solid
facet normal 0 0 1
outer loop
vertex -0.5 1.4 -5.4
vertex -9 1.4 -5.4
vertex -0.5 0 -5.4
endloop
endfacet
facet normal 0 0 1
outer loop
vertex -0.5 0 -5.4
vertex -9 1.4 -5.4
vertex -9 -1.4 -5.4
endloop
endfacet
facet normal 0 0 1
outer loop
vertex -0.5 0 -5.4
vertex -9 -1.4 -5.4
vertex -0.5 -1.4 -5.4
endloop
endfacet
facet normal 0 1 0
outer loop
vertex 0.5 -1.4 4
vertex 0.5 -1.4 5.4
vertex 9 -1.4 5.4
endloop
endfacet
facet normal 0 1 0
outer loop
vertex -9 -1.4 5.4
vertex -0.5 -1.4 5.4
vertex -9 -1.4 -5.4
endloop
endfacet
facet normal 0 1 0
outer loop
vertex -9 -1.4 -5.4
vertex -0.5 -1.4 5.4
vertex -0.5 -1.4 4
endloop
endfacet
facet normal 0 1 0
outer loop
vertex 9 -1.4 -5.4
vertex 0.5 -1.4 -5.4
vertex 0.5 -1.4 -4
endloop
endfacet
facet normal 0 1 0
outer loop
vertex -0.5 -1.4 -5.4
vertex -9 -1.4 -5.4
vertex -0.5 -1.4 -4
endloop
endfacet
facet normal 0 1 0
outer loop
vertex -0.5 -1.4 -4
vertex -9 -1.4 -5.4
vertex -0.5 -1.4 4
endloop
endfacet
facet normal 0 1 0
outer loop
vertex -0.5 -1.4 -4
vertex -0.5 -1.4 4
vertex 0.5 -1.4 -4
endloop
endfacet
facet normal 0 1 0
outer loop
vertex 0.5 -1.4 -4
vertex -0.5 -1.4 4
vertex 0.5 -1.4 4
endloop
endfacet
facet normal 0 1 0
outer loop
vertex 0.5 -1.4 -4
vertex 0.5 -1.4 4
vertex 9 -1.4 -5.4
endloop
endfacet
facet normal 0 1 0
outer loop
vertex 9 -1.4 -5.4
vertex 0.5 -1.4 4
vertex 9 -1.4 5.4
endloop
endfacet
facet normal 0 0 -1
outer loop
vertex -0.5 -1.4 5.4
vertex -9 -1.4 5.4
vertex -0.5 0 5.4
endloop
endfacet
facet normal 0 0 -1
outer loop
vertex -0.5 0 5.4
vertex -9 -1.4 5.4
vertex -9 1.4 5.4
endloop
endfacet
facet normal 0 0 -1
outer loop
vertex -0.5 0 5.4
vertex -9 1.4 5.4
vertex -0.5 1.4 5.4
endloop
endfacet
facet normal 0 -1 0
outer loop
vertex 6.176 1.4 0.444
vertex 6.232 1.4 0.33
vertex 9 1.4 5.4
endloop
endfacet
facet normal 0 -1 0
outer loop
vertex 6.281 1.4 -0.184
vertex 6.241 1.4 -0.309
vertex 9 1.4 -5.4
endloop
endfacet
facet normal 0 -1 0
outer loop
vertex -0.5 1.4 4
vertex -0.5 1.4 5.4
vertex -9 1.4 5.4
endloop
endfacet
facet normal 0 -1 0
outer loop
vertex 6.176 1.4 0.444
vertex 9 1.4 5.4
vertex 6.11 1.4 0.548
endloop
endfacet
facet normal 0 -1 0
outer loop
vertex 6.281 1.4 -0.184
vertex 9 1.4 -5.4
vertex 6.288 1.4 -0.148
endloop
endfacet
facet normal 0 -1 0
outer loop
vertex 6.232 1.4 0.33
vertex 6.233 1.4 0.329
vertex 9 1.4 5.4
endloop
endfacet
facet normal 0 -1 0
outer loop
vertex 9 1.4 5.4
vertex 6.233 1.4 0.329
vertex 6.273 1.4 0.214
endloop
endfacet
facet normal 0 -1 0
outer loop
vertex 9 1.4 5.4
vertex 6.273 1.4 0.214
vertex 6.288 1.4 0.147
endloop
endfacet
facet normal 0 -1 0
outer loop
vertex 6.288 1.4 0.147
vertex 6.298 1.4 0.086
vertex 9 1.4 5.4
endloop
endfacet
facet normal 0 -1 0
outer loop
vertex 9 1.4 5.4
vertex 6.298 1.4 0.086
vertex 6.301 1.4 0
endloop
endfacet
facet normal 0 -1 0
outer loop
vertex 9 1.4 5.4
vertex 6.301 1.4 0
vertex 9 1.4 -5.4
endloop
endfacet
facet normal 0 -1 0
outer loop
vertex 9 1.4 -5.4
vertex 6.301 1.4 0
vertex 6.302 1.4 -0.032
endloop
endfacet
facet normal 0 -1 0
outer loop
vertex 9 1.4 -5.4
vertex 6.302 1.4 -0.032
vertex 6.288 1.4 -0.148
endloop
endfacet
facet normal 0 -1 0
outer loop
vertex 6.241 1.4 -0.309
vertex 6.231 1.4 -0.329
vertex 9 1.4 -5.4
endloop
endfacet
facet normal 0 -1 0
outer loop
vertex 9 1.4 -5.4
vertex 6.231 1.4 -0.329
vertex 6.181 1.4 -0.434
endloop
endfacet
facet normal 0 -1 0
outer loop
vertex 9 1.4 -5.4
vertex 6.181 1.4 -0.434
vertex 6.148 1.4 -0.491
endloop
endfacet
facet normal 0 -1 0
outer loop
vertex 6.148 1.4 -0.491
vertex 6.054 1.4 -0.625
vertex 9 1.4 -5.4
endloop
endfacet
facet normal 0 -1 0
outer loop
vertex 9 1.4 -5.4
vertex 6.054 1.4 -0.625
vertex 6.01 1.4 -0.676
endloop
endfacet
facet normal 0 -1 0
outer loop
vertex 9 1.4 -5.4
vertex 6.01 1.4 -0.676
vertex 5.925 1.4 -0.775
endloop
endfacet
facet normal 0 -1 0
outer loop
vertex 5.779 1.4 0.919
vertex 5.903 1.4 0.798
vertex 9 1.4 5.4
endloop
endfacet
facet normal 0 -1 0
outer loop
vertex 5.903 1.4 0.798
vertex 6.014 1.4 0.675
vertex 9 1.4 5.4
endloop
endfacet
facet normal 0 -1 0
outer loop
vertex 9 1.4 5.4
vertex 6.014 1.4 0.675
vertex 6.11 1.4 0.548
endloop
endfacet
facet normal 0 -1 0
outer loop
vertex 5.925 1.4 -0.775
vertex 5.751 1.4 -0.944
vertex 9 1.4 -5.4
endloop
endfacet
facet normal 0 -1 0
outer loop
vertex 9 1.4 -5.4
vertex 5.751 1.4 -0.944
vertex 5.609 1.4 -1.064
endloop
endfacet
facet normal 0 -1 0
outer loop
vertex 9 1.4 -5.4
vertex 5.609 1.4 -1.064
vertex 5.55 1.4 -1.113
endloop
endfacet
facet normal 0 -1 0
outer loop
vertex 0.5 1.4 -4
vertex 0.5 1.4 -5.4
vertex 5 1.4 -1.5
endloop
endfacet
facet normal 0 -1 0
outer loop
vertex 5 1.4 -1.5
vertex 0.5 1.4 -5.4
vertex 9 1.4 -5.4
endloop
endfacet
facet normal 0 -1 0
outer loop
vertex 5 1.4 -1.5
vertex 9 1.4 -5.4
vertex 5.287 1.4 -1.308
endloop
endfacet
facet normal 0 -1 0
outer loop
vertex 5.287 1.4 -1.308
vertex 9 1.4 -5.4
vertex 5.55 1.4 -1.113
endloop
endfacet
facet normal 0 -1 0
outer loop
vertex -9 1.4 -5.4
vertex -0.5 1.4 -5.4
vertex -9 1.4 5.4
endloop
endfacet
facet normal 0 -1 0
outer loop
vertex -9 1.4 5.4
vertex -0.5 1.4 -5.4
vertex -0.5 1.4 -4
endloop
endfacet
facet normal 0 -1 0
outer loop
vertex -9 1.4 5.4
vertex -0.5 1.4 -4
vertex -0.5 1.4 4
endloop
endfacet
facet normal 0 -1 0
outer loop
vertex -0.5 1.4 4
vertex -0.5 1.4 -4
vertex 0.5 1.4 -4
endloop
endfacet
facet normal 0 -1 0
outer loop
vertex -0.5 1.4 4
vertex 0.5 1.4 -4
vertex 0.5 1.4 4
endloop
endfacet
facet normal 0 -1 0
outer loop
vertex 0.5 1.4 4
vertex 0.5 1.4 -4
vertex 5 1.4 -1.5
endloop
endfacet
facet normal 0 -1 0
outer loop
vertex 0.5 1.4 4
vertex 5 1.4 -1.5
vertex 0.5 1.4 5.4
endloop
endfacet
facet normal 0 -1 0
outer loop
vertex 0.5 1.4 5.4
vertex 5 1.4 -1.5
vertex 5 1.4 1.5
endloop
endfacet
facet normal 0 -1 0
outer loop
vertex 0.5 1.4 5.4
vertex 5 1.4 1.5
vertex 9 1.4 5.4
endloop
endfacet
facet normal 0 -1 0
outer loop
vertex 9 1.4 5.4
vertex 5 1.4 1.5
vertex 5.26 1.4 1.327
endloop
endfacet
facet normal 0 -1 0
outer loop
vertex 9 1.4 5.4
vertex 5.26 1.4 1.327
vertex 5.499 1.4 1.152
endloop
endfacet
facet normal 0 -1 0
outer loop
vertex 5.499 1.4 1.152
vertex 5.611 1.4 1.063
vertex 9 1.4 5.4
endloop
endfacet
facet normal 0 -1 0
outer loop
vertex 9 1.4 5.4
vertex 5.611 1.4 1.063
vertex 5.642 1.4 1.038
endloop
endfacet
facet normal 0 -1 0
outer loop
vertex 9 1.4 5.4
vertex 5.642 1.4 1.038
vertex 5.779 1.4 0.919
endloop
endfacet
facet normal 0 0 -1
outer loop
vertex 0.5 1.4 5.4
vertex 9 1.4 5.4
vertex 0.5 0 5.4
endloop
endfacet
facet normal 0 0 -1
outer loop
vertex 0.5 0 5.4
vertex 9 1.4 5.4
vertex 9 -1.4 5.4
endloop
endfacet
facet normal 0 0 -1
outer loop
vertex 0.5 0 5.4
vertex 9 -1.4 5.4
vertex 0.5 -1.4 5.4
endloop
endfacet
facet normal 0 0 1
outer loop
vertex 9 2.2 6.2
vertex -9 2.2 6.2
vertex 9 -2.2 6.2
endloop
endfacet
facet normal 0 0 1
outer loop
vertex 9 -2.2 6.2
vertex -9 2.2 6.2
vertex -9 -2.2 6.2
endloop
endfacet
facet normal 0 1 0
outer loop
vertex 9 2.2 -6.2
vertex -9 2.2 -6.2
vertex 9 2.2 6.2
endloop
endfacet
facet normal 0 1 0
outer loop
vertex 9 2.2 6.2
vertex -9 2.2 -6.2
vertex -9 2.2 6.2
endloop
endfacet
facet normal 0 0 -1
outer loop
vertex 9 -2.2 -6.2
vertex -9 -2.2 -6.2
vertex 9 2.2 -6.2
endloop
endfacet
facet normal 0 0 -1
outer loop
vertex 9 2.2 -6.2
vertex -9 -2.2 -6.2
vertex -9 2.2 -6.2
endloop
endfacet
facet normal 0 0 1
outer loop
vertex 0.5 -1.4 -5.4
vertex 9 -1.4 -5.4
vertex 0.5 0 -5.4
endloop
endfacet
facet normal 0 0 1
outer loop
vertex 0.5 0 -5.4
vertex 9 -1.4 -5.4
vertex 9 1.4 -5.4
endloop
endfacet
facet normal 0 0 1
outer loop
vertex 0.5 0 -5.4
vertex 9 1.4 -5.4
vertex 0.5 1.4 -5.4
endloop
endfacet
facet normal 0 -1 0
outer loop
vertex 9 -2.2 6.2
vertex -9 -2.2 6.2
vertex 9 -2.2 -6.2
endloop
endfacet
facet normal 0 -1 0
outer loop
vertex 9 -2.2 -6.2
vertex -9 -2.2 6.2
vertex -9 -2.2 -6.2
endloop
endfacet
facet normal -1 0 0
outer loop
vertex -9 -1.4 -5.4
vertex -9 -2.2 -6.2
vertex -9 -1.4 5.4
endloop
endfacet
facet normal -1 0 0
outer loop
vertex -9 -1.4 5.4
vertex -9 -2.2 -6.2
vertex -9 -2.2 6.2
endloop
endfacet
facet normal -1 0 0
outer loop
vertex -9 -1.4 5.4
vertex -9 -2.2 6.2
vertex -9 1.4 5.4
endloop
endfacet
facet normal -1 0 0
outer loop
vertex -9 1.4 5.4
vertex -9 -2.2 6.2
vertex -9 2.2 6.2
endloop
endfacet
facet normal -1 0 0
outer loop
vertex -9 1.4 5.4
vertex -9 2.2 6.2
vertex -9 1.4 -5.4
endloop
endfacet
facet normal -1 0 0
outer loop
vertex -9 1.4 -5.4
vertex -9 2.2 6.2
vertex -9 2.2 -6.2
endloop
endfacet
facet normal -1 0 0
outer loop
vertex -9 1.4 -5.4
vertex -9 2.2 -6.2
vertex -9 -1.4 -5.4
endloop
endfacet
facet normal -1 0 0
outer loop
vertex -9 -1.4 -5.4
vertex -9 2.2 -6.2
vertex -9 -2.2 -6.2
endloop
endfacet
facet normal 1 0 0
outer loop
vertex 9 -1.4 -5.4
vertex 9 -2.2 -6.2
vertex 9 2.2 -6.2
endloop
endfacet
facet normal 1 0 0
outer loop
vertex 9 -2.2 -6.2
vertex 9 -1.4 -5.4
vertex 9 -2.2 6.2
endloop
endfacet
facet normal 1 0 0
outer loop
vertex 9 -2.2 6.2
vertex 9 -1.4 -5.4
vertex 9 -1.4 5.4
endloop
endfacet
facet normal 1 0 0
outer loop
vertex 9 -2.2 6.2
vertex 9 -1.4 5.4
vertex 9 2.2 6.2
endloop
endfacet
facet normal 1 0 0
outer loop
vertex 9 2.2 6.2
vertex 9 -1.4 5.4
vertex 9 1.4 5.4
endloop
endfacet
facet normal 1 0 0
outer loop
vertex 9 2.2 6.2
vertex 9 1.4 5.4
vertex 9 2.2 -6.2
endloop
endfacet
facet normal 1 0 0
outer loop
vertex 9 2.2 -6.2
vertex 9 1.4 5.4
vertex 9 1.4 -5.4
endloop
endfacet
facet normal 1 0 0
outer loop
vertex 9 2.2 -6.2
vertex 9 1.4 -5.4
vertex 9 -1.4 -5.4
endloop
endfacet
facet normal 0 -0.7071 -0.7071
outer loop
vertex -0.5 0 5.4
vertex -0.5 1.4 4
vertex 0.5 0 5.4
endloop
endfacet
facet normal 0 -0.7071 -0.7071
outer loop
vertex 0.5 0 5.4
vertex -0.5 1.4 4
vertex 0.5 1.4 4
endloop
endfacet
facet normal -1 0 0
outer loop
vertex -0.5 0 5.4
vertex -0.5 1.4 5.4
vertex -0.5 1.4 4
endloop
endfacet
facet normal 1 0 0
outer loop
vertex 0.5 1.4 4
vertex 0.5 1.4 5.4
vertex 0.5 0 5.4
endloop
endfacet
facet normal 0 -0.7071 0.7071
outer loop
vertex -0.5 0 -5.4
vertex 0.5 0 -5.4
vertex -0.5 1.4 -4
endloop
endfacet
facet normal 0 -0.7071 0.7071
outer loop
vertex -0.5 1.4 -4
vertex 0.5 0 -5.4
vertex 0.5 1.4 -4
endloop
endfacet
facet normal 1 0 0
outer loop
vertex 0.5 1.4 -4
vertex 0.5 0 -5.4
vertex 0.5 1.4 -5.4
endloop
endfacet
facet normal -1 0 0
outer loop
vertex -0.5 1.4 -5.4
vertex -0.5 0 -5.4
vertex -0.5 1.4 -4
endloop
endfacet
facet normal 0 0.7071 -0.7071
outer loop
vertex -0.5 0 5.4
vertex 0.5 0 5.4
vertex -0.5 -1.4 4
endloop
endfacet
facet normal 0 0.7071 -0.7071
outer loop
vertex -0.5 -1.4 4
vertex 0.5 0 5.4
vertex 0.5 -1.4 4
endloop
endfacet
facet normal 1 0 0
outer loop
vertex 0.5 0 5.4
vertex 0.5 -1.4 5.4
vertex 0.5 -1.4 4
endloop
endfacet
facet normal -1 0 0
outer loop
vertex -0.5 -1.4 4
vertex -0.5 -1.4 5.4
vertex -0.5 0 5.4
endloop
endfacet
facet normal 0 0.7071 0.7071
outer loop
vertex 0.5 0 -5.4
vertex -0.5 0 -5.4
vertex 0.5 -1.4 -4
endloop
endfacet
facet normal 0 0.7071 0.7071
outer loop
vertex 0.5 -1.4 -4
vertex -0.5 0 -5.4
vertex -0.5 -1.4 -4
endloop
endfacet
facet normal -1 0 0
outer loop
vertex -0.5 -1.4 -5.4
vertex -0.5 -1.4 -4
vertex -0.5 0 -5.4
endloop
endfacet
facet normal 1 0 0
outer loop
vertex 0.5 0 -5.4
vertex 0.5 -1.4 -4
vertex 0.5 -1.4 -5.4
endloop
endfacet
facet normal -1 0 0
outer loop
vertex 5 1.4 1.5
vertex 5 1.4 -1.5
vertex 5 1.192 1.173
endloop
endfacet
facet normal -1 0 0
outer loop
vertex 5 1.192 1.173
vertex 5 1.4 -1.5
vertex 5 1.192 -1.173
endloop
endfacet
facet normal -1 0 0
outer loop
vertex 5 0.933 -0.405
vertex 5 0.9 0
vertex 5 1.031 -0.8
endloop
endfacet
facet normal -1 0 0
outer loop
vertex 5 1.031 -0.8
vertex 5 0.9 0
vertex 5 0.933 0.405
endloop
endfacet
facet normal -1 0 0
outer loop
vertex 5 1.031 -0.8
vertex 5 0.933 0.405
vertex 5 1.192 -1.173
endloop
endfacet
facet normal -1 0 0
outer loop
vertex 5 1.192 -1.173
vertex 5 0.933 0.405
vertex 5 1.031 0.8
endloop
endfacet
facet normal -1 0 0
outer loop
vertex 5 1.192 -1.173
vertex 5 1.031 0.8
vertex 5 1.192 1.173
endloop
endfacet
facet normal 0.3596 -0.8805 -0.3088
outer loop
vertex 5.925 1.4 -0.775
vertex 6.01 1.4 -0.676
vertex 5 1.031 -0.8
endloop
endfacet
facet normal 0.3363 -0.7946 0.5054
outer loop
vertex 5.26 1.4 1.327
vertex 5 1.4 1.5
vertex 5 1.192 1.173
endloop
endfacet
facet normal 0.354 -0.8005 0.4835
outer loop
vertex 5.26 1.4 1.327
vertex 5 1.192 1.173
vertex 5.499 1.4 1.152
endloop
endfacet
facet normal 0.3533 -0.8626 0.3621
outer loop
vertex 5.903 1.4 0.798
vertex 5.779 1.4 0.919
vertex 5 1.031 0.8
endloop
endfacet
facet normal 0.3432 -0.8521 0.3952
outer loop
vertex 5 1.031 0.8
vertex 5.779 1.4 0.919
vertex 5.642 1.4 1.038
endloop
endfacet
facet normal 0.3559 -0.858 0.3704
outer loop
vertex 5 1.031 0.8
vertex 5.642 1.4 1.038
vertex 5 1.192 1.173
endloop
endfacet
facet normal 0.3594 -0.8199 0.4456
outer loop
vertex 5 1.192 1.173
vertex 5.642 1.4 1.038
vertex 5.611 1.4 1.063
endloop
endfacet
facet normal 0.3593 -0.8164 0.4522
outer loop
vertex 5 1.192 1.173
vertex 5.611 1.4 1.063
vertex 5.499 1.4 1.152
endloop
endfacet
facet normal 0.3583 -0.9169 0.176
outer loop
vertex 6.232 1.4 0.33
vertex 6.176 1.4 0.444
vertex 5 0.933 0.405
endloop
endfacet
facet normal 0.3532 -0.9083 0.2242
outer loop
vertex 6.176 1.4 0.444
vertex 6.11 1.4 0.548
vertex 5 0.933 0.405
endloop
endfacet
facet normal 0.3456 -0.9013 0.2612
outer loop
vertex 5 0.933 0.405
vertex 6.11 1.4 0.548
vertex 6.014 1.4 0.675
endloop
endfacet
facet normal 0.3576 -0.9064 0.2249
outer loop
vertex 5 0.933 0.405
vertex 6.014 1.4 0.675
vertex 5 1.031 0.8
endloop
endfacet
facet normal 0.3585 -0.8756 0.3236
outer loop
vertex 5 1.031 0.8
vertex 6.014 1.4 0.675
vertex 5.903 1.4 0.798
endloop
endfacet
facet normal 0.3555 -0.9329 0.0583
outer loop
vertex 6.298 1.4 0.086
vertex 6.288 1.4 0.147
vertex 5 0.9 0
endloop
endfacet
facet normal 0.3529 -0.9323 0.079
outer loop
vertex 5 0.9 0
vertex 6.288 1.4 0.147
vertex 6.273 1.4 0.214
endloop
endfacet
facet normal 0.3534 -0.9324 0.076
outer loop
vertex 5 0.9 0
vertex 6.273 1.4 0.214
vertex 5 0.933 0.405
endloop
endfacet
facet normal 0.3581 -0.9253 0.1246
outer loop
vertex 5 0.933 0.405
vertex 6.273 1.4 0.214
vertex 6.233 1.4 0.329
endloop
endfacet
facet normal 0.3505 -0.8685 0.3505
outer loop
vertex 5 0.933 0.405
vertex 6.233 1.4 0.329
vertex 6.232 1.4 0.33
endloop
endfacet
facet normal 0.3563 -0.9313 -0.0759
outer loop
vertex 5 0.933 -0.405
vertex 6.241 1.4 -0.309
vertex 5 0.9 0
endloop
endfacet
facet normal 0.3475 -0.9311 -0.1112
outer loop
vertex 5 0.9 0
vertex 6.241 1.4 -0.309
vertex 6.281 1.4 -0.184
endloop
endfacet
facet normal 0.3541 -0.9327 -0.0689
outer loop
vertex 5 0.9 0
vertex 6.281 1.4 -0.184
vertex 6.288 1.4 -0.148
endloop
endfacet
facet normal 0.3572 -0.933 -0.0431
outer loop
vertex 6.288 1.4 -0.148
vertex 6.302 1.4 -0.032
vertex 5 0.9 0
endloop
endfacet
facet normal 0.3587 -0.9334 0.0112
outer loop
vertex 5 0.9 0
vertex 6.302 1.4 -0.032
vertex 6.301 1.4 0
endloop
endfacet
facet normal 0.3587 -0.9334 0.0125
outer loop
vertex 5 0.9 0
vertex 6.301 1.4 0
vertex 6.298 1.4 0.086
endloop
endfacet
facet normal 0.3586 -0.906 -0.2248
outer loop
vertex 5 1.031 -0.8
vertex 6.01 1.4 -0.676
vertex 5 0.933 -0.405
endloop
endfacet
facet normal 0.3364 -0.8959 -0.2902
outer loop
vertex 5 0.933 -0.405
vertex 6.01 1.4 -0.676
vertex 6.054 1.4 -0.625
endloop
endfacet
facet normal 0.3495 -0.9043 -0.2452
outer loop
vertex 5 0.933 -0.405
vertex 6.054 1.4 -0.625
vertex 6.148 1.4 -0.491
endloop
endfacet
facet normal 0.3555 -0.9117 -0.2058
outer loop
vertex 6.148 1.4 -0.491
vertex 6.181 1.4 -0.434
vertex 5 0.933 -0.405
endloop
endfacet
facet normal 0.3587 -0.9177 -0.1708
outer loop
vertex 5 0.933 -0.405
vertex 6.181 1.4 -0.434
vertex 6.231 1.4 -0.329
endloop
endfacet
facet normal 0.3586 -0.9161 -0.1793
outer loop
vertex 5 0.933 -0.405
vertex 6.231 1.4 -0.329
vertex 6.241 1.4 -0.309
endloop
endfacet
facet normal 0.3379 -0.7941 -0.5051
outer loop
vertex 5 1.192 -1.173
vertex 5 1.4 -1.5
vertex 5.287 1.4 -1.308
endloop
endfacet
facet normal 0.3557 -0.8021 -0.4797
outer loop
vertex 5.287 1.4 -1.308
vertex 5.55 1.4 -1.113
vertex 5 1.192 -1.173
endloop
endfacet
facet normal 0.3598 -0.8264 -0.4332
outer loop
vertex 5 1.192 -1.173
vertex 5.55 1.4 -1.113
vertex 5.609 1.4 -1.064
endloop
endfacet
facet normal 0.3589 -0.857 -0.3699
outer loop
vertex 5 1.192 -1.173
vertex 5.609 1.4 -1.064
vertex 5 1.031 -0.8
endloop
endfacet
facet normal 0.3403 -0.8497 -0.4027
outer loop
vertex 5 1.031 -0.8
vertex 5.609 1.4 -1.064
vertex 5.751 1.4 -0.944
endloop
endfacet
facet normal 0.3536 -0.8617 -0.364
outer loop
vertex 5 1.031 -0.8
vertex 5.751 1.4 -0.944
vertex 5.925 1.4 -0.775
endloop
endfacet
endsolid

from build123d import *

# Parameters (mm, degrees)
BOSS_EXTRUDE1_DEPTH      = 9
BOSS_EXTRUDE1_DEPTH_BACK = 9
SKETCH1_W                = 12.4
SKETCH1_H                = 4.4
SKETCH1_W_2              = 10.8
SKETCH1_H_2              = 2.8
BOSS_EXTRUDE2_DEPTH      = 0.5
BOSS_EXTRUDE2_DEPTH_BACK = 0.5
BOSS_EXTRUDE3_START      = 5
BOSS_EXTRUDE3_DEPTH      = 2
CHAMFER1_SIZE            = 2
CHAMFER1_SIZE_2          = 0.76772807


with BuildPart() as part:
    # Sketch1 → Boss-Extrude1 (new, two sides: drawn at the far end of the back side and taken through both)
    with BuildSketch(Plane(origin=(0, 0, 0), x_dir=(0, 0, -1), z_dir=(1, 0, 0)).offset(-BOSS_EXTRUDE1_DEPTH_BACK)):
        Rectangle(SKETCH1_W, SKETCH1_H)
        Rectangle(SKETCH1_W_2, SKETCH1_H_2, mode=Mode.SUBTRACT)
    extrude(amount=BOSS_EXTRUDE1_DEPTH + BOSS_EXTRUDE1_DEPTH_BACK)

    # Sketch1<3> → Boss-Extrude2 (add, two sides: drawn at the far end of the back side and taken through both)
    with BuildSketch(Plane(origin=(0, 0, 0), x_dir=(0, 0, -1), z_dir=(1, 0, 0)).offset(-BOSS_EXTRUDE2_DEPTH_BACK)):
        Polygon((-5.4, 1.4), (-5.4, 0), (-4, 1.4), align=None)
        Polygon((4, 1.4), (5.4, 0), (5.4, 1.4), align=None)
        Polygon((-5.4, 0), (-5.4, -1.4), (-4, -1.4), align=None)
        Polygon((5.4, 0), (4, -1.4), (5.4, -1.4), align=None)
    extrude(amount=BOSS_EXTRUDE2_DEPTH + BOSS_EXTRUDE2_DEPTH_BACK)

    # Sketch1<4> → Boss-Extrude3 (add)
    with BuildSketch(Plane(origin=(0, 0, 0), x_dir=(0, 0, -1), z_dir=(1, 0, 0)).offset(BOSS_EXTRUDE3_START)):
        with BuildLine():
            Line((1.5, 1.4), (-1.5, 1.4))
            ThreePointArc((-1.5, 1.4), (0, 0.9), (1.5, 1.4))
        make_face()
    extrude(amount=BOSS_EXTRUDE3_DEPTH)

    # Chamfer1
    # the kernel refuses this chamfer: 2, 0.76772807 mm, written as the material it takes off along each edge
    with BuildSketch(Plane(origin=(7, 3.4, 0), x_dir=(0, 0.9120061732371908, 0.4101764741879463), z_dir=(0, 0.4101764741879463, -0.9120061732371908))) as chamfer1_piece_1_section:
        Polygon((2.5, -CHAMFER1_SIZE), (2.5 - CHAMFER1_SIZE_2, 0), (2.5, 0), align=None)
    chamfer1_piece_1 = revolve(axis=Axis((7, 3.4, 0), (1, 0, 0)), revolution_arc=311.56815777, mode=Mode.PRIVATE)
    chamfer1_piece_1 = split(chamfer1_piece_1, bisect_by=Plane(origin=(6.216344198, 1.4, 0), z_dir=(0, -1, 0)), keep=Keep.TOP, mode=Mode.PRIVATE)
    add(chamfer1_piece_1, mode=Mode.SUBTRACT)


solid = part.part
